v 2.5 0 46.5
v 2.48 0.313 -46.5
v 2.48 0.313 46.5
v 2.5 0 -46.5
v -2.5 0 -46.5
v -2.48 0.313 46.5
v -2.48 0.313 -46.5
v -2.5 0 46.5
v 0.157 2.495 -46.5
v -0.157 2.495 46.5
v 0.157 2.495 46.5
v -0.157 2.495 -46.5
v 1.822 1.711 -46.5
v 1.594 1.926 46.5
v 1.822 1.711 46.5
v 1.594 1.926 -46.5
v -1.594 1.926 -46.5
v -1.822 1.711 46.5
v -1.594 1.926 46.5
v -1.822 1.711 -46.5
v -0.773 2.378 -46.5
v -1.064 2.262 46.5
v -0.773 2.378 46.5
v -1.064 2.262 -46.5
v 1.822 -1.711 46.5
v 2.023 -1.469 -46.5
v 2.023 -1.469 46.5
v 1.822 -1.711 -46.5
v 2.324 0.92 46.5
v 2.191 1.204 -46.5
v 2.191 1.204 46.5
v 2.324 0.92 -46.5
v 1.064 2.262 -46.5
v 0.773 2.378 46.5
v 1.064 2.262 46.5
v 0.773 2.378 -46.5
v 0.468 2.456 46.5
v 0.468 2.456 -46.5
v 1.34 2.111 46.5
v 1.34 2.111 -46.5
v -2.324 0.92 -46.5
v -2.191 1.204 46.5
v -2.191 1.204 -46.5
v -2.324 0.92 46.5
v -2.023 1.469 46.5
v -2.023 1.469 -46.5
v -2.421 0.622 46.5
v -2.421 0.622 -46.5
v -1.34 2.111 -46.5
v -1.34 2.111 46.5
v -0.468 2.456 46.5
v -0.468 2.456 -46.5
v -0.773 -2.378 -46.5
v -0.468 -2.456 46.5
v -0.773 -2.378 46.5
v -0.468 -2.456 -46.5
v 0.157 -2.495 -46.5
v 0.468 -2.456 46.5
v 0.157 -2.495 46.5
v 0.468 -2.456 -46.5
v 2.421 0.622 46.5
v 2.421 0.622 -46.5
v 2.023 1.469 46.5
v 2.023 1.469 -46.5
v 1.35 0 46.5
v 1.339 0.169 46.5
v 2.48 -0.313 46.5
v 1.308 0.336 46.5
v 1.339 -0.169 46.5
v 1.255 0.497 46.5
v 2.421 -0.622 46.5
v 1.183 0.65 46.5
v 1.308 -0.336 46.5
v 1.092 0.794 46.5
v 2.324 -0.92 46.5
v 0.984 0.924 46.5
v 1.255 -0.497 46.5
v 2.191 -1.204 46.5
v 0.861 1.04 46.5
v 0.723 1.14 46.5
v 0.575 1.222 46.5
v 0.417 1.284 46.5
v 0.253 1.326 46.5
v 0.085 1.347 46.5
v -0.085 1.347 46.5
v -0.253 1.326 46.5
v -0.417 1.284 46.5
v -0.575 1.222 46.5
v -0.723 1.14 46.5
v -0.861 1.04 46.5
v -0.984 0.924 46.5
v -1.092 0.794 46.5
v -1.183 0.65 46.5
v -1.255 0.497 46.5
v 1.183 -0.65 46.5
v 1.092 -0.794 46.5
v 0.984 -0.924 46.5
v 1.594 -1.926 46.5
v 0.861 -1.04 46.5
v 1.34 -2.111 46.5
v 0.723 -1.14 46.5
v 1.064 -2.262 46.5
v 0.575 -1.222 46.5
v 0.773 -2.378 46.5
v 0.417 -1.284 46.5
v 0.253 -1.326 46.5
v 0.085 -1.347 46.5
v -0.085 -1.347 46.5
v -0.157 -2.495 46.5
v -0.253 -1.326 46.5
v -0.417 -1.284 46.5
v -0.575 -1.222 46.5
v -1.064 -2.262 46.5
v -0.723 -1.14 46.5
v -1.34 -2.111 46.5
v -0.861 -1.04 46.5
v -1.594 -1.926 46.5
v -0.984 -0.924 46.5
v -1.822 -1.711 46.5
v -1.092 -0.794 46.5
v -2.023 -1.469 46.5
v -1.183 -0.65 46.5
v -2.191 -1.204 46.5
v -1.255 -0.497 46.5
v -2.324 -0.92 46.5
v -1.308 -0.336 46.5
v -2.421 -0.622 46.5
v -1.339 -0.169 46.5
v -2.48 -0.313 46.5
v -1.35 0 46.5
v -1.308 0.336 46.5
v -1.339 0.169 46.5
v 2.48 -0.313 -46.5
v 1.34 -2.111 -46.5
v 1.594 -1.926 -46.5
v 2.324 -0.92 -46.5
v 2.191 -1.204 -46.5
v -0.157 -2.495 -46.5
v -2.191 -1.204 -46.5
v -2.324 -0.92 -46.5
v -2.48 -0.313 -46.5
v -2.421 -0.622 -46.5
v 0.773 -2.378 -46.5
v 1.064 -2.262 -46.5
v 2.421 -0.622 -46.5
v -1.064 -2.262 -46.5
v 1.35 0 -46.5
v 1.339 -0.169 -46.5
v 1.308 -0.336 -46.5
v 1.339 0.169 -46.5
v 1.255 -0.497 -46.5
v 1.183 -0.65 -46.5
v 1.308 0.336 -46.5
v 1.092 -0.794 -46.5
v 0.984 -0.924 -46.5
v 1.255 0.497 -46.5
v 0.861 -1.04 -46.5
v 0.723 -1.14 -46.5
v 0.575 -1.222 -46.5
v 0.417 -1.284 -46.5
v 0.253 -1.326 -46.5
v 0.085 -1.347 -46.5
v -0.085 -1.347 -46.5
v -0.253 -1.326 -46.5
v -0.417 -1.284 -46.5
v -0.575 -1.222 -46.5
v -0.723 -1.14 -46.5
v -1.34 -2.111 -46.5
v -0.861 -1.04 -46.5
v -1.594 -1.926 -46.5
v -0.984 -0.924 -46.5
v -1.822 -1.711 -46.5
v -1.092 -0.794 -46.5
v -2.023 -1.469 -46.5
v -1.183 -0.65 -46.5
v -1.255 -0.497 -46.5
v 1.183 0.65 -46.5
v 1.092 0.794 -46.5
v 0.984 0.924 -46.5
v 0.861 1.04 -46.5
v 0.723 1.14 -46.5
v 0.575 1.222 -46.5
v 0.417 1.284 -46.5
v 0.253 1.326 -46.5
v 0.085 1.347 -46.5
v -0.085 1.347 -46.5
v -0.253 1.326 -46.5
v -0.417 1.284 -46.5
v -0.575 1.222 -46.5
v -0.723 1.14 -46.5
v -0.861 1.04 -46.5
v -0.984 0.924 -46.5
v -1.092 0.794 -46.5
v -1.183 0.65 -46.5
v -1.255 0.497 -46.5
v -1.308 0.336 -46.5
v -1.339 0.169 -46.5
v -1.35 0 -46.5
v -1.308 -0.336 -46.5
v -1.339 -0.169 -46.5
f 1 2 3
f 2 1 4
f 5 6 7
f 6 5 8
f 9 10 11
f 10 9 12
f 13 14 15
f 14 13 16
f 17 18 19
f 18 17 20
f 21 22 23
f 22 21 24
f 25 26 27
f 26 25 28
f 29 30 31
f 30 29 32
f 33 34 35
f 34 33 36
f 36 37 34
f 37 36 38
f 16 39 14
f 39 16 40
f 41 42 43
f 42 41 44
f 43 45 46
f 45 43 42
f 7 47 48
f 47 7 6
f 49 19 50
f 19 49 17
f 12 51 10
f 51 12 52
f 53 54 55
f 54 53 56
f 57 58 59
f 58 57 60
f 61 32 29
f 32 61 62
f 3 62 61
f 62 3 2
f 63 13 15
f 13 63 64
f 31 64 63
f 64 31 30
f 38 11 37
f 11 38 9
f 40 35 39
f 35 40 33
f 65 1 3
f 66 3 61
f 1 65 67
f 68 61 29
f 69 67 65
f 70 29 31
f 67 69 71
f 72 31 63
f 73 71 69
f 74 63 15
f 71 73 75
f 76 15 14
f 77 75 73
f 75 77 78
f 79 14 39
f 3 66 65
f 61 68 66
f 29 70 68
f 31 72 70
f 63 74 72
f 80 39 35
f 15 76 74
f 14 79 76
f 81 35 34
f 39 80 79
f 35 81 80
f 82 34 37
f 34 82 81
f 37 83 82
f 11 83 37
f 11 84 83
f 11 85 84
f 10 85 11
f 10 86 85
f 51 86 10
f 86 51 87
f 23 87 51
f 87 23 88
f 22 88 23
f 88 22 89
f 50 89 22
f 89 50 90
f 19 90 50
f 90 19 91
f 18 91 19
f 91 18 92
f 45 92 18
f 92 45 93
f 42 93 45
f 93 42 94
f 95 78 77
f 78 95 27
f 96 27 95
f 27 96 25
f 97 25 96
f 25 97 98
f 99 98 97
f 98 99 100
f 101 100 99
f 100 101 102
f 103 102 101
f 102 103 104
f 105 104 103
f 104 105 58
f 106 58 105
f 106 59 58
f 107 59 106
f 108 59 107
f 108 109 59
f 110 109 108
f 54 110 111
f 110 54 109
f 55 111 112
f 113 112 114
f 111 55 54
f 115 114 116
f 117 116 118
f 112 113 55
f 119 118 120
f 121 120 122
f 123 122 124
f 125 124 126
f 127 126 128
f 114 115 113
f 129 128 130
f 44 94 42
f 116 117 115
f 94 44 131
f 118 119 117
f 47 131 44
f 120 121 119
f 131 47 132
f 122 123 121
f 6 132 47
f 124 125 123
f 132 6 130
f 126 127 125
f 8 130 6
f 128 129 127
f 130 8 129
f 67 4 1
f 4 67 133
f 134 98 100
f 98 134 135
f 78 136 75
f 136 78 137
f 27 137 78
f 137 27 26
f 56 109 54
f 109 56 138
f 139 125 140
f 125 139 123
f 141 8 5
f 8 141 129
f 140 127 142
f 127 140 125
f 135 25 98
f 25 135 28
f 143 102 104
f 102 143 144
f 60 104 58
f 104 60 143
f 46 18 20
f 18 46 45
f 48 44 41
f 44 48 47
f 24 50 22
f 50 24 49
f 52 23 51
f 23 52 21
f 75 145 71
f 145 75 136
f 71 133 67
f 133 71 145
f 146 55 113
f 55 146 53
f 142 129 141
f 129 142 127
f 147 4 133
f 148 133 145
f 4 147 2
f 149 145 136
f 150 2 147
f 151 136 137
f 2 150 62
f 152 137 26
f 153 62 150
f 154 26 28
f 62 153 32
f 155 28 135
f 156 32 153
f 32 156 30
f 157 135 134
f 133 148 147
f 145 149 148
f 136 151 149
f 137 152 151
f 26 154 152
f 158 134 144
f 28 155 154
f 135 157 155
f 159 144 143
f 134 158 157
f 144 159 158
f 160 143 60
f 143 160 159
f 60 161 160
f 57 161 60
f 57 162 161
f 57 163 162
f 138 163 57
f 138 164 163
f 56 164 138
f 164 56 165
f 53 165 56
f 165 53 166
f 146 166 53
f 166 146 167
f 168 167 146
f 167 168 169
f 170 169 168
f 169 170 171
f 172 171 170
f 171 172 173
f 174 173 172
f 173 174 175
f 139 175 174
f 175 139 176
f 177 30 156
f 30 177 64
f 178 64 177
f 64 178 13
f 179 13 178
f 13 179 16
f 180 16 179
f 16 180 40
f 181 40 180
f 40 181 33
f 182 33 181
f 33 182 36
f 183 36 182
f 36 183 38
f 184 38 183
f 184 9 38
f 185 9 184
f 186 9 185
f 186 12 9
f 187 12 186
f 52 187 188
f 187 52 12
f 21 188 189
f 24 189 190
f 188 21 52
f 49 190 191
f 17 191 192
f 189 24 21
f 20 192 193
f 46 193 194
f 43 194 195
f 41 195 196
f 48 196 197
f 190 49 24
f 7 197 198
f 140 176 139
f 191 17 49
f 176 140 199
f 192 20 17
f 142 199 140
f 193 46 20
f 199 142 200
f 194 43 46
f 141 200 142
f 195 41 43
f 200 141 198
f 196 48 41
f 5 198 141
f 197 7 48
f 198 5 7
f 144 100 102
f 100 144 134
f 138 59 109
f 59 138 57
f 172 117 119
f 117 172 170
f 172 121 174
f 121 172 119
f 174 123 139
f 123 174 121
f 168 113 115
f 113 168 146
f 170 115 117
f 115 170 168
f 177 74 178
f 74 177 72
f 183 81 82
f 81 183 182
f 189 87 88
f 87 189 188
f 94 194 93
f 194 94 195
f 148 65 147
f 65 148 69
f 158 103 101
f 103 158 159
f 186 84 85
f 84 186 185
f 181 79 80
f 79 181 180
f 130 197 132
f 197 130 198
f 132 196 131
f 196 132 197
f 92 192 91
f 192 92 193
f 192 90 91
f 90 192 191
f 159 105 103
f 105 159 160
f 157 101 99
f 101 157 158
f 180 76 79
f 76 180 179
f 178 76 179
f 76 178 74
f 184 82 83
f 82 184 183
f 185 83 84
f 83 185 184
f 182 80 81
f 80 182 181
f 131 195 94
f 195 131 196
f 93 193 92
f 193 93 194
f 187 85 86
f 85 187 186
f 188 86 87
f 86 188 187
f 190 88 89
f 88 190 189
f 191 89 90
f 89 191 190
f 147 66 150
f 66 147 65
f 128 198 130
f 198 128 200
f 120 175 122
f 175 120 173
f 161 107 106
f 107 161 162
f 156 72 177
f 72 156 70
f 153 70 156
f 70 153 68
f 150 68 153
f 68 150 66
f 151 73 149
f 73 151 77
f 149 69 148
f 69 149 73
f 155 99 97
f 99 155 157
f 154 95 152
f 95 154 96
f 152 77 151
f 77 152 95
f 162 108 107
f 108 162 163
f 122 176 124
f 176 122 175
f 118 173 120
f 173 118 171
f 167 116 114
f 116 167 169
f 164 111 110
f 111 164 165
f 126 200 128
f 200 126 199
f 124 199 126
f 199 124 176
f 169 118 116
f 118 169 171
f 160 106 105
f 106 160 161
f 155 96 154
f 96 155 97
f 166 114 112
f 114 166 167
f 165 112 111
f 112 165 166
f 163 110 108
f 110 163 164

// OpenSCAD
$fn = 50;


difference() {
	union() {
		translate(v = [0, 0, -46.5000000000]) {
			cylinder(h = 93, r = 2.5000000000);
		}
	}
	union() {
		translate(v = [0, 0, -100.0000000000]) {
			cylinder(h = 200, r = 1.3500000000);
		}
	}
}
